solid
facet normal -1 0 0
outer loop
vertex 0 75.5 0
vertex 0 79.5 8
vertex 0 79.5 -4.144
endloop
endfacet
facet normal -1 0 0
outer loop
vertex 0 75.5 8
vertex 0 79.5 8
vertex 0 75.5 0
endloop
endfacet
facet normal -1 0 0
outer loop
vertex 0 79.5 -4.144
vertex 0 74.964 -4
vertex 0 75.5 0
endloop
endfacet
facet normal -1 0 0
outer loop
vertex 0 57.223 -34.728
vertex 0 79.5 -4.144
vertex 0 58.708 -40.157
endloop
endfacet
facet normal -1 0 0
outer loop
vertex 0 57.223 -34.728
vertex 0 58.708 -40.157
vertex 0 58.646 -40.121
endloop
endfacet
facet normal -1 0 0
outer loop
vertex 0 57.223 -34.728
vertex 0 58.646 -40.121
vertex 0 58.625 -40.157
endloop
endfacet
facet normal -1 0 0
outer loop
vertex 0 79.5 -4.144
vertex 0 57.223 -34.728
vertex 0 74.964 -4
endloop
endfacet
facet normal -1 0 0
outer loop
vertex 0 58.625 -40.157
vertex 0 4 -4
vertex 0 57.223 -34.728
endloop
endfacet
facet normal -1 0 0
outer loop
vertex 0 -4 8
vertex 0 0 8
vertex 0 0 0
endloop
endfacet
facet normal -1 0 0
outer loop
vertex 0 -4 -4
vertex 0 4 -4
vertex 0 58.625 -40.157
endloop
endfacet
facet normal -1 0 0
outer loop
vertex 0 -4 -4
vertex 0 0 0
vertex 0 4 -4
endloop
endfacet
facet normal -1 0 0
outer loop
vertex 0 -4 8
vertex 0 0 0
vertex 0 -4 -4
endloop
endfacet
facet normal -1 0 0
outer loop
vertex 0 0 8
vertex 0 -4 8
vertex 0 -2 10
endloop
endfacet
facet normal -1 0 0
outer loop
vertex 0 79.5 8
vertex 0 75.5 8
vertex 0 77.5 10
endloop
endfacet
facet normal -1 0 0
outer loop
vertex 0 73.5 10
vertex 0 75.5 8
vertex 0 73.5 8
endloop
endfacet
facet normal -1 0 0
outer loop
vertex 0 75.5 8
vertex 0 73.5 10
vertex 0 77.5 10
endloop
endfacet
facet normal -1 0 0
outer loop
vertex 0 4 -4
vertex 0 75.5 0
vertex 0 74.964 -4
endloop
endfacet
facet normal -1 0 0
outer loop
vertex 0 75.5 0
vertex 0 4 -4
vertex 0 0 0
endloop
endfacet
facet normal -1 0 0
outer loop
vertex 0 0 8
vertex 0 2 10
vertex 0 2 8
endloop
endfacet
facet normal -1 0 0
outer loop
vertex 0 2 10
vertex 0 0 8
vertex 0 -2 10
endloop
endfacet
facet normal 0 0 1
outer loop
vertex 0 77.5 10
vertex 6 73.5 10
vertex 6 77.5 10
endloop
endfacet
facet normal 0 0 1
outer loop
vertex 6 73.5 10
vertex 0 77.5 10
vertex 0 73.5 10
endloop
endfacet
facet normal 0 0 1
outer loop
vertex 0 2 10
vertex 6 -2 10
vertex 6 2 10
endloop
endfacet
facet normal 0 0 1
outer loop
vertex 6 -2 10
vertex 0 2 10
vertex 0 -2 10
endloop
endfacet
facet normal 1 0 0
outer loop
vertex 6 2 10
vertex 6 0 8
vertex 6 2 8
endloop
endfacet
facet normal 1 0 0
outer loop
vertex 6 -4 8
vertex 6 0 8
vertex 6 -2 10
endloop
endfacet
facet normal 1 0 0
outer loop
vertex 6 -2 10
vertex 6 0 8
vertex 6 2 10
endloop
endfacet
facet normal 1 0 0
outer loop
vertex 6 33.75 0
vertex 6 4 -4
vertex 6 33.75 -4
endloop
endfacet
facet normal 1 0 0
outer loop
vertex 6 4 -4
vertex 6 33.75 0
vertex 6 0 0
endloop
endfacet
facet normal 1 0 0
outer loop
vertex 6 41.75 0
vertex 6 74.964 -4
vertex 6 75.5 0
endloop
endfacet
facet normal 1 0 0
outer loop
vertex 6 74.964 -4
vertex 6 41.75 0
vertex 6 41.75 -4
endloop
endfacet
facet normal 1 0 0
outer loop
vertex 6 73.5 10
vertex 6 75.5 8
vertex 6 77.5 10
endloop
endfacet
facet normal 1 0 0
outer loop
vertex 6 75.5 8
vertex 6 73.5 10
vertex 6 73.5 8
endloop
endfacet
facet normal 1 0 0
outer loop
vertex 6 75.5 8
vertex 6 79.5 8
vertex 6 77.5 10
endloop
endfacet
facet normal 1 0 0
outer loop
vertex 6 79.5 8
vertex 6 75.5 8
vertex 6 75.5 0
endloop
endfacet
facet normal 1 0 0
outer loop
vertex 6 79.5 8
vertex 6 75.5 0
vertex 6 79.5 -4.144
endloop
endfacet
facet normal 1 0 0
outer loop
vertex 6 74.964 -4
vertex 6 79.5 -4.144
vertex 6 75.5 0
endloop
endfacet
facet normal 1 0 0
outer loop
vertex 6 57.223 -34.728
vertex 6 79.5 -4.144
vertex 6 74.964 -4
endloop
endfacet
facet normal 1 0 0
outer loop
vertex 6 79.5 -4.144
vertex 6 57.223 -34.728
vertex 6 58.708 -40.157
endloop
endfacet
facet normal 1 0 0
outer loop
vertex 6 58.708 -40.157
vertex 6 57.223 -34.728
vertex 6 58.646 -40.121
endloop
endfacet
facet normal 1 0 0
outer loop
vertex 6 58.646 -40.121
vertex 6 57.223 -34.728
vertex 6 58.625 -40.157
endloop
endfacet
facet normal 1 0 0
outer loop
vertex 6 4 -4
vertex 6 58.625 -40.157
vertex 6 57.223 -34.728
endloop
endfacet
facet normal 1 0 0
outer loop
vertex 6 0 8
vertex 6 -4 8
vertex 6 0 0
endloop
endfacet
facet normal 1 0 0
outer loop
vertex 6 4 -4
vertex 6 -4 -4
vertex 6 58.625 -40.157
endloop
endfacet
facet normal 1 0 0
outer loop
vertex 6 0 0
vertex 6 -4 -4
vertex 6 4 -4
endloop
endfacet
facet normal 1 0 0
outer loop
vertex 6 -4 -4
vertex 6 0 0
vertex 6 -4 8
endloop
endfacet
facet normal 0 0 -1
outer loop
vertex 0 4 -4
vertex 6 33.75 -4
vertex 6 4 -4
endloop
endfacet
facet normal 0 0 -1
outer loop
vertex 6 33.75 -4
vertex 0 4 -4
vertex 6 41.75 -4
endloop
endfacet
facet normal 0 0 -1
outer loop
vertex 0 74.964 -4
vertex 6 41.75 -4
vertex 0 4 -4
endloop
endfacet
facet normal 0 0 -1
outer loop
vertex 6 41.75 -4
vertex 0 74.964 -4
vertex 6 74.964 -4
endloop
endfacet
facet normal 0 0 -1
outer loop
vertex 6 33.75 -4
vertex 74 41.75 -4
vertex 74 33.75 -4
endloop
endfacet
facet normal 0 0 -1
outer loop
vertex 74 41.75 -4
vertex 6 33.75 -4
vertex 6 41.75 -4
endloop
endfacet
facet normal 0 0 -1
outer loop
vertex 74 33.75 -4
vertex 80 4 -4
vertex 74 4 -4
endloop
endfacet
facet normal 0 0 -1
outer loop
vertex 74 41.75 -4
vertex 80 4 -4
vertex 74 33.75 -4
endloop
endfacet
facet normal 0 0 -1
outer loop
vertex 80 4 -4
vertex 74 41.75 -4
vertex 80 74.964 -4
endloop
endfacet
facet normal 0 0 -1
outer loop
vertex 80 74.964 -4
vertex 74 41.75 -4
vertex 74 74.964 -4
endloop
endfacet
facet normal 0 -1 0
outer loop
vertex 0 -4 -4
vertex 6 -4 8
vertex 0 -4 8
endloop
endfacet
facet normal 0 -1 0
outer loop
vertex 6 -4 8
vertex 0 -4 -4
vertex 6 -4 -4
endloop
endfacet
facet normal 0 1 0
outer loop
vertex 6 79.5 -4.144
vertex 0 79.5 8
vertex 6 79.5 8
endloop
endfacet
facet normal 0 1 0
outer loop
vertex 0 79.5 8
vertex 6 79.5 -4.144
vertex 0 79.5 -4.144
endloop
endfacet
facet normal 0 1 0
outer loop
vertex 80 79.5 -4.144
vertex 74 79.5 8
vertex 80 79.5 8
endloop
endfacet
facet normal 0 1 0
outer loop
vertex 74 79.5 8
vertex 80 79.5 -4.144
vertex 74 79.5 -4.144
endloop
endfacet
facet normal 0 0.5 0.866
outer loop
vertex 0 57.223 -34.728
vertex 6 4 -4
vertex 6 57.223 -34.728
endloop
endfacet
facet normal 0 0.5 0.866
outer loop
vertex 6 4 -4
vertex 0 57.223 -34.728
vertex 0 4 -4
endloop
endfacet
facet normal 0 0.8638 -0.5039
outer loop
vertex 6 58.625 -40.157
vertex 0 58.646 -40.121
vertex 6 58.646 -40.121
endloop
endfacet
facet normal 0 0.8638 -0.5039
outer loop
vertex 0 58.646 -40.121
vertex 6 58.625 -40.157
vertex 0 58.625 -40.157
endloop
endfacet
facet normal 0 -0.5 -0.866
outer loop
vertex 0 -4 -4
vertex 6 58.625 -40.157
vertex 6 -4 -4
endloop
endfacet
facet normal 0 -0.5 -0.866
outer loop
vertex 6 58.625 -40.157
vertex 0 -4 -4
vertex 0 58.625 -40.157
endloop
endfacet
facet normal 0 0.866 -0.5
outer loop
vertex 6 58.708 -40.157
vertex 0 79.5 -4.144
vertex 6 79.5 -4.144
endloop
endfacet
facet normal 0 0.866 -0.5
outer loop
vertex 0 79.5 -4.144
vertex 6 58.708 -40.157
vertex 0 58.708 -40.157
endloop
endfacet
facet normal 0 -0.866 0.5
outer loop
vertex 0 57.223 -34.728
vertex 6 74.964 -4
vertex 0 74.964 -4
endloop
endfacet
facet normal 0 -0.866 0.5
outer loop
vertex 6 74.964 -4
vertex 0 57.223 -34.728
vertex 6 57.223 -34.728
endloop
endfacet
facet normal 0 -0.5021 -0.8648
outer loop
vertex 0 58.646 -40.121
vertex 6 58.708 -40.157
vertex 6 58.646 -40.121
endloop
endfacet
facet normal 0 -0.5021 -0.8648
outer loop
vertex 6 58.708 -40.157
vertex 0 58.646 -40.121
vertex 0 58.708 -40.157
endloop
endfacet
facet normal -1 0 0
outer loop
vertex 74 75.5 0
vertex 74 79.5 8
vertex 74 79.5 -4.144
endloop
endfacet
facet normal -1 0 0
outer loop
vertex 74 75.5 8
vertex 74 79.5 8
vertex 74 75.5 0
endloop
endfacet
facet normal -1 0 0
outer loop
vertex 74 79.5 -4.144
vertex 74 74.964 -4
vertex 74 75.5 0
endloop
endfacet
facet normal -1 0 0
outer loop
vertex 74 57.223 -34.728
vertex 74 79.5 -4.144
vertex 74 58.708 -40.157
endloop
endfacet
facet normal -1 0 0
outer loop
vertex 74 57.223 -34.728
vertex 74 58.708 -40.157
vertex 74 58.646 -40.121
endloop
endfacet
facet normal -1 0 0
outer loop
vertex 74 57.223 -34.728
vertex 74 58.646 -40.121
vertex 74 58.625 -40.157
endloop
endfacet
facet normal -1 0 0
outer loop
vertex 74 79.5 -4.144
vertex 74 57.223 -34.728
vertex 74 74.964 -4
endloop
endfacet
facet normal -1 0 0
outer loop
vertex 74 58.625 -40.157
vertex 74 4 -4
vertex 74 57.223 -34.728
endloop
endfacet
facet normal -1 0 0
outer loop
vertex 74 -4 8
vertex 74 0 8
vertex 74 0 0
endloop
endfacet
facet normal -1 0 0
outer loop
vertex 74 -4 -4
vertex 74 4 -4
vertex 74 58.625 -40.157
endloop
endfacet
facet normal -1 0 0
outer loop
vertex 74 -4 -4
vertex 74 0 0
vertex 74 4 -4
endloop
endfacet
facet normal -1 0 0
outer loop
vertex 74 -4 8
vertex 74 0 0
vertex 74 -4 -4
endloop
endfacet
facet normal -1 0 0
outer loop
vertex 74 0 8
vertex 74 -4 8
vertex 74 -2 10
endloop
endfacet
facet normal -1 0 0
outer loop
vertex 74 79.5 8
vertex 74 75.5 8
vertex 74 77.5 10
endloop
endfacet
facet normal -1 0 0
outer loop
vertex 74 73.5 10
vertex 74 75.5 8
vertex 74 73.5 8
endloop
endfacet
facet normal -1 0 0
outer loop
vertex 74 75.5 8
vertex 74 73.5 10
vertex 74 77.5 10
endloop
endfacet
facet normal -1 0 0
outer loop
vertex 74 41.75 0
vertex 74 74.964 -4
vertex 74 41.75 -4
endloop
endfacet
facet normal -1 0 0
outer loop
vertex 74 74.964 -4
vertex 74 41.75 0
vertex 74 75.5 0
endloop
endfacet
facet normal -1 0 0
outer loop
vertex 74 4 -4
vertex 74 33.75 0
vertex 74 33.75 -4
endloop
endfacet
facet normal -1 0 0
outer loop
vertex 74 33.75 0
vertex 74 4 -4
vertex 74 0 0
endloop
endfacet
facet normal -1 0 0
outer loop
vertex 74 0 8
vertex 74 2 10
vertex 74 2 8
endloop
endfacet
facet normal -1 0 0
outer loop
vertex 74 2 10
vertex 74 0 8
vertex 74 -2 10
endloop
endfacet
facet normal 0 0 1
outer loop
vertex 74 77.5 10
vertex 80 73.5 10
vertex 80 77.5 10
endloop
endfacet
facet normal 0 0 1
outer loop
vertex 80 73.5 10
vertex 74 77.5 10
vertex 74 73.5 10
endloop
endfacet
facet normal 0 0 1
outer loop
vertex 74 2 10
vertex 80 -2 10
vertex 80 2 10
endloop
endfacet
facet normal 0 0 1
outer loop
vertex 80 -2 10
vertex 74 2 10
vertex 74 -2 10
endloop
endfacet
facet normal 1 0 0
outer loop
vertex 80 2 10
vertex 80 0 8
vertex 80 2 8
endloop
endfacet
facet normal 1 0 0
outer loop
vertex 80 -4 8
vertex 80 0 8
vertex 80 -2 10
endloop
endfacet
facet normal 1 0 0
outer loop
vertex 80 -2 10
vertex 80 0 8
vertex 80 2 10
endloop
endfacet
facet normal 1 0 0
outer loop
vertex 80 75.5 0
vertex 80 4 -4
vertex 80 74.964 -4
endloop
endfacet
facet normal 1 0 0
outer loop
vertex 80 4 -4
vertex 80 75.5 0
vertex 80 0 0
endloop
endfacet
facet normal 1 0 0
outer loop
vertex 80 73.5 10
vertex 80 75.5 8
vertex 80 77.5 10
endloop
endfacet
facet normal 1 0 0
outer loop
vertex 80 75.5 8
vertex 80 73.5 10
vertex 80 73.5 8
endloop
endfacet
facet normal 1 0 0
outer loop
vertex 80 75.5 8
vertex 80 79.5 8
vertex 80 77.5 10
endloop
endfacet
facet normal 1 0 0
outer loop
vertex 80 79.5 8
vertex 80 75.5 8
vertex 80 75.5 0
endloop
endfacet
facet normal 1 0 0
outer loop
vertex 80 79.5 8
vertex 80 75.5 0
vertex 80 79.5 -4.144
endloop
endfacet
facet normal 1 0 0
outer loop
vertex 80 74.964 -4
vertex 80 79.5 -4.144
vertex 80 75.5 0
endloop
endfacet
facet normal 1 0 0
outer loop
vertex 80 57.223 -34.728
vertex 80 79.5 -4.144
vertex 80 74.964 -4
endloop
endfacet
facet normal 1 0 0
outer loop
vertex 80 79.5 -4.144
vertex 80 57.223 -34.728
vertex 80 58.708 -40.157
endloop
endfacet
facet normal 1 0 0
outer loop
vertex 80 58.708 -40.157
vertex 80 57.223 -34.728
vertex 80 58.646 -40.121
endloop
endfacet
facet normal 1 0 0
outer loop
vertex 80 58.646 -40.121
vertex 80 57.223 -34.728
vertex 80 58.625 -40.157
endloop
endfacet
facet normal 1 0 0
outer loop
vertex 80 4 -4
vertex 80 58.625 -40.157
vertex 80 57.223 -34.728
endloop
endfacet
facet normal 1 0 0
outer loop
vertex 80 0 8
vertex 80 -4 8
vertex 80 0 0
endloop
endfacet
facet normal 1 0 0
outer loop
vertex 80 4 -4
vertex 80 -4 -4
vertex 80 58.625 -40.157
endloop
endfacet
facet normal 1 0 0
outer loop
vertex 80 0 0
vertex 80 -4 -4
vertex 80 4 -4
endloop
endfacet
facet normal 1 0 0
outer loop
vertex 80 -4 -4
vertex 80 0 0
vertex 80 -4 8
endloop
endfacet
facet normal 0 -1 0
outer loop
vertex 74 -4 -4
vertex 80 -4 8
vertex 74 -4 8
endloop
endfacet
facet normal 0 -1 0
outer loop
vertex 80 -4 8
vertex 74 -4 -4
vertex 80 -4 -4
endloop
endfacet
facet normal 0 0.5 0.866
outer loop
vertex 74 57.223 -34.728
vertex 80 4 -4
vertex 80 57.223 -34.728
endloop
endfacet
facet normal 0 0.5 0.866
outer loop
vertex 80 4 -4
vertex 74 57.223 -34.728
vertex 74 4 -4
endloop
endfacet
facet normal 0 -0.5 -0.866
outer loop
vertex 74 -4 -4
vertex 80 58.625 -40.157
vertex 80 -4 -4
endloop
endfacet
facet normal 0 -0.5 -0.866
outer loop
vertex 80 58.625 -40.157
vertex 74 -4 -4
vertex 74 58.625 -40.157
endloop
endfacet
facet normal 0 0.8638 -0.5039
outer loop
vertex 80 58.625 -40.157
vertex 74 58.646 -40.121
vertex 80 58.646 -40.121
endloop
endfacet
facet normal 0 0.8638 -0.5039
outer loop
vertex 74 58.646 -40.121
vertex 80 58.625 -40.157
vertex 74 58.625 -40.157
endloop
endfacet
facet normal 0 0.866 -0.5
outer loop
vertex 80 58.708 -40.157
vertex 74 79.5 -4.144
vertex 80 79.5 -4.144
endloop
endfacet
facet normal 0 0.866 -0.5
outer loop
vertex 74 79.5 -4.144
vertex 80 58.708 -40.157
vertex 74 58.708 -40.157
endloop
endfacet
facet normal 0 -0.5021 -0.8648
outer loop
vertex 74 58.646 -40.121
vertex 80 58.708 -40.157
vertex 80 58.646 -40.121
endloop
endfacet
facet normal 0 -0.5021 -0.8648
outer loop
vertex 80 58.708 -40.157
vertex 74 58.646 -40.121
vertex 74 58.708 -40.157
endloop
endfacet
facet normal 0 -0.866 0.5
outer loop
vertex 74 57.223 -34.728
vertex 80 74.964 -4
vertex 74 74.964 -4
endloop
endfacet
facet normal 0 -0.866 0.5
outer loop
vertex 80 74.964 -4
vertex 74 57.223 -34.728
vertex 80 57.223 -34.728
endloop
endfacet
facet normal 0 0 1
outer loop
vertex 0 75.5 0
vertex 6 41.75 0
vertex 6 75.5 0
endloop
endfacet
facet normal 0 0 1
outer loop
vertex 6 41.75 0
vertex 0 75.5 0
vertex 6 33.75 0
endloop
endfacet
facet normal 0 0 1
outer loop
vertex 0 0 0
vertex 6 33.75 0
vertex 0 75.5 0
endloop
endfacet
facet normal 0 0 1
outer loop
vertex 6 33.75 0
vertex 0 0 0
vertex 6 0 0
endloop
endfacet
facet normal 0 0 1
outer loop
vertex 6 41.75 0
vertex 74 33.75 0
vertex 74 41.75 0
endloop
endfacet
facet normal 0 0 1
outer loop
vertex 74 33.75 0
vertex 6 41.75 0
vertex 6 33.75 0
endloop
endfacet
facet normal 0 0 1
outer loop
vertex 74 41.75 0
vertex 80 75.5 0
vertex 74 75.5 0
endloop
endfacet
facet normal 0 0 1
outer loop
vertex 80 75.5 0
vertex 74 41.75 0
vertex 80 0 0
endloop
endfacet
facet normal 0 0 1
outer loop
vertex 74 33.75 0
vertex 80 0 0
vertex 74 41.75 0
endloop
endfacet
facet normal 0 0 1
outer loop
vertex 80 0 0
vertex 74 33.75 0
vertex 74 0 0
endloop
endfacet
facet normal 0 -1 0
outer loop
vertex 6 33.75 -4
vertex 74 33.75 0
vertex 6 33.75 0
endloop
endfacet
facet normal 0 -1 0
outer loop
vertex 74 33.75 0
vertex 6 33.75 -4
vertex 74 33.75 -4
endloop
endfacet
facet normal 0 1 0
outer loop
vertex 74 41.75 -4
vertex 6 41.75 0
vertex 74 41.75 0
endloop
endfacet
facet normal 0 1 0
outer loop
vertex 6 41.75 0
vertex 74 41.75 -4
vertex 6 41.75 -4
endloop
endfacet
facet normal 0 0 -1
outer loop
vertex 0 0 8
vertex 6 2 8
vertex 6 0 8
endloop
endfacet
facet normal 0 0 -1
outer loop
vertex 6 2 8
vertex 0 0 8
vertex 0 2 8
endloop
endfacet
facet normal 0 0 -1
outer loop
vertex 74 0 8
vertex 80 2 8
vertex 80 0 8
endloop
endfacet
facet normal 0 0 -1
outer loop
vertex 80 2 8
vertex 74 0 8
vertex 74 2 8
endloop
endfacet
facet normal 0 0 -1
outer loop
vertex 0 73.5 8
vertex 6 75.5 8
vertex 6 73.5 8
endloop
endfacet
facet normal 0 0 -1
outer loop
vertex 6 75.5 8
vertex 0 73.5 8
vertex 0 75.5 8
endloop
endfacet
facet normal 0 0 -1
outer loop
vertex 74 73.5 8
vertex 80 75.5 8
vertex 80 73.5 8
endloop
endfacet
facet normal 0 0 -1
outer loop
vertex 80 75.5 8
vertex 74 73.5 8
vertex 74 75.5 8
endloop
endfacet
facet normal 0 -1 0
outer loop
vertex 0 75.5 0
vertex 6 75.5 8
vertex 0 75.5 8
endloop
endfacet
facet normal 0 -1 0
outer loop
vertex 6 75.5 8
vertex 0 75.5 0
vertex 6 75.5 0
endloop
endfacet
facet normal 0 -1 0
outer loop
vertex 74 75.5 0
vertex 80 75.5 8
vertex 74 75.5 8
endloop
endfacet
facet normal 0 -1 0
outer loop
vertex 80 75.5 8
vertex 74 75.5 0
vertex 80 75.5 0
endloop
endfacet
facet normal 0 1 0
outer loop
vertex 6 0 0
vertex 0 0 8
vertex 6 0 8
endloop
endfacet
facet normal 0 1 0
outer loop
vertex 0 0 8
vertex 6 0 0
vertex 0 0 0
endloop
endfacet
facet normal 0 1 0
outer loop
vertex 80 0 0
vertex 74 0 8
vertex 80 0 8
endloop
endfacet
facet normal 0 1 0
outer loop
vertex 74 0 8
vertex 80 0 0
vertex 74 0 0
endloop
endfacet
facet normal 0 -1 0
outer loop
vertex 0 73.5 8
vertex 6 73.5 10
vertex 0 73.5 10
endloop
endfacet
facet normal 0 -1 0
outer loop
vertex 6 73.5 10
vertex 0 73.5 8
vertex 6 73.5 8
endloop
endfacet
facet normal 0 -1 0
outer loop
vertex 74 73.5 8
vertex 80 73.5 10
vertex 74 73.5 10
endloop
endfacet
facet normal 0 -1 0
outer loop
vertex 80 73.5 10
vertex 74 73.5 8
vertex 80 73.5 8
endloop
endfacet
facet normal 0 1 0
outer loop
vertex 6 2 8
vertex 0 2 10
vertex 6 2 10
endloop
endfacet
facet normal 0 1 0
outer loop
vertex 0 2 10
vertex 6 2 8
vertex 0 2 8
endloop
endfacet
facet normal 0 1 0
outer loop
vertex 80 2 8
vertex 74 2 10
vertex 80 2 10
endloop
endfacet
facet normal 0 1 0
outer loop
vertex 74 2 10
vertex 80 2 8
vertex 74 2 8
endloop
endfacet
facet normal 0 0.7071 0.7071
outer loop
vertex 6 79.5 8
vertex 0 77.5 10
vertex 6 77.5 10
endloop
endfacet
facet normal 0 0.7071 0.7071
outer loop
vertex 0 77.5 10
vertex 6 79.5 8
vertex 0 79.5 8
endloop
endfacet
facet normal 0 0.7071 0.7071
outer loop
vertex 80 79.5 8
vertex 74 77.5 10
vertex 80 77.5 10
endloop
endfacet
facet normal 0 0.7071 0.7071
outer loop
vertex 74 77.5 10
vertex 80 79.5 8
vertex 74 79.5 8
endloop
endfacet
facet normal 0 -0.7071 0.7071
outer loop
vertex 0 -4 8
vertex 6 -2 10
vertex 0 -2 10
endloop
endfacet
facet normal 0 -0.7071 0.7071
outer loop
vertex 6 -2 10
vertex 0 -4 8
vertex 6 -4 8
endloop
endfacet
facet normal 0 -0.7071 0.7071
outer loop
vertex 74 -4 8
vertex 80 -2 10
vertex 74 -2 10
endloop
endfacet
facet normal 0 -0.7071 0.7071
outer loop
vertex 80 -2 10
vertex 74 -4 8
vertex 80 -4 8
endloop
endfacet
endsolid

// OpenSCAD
width=75+0.5;
length=80+20;
depth=8;
size=4;
size2=6;

phonedock();

module phone()
{
	cube([length,width,depth]);
	translate([0,size/2,depth])
		cube([length,width-size,depth]);
}

module phonedock()
{
	difference()
	{
		union()
		{
			translate([0,width/2-size,-size])
				cube([width,2*size,size]);

			for (i = [0,1])
			{
				translate([(length-20-size2)*i,-size,-size])
				{
					cube([size2,width+2*size,depth+1.5*size]);

					rotate(-30,[1,0,0])
						cube([size2,(width+2*size)*sin(60),size]);

					translate([0,width+size/sin(60),size*cos(60)])
						rotate(-30-90,[1,0,0])
							cube([size2,(width+2*size)*tan(30)*sin(60),size]);
				}
			}
		}
		translate([-10,0,0])
			#phone();

		translate([-10,width+size,-width])
			#cube([length,width,2*width]);

		translate([-10,width+size,depth+size/2])
			rotate(45,[1,0,0])
				translate([0,-sin(45)*size/2,-width])
					#cube([length,width,2*width]);

		mirror([0,1,0])
		translate([-10,size,depth+size/2])
			rotate(45,[1,0,0])
				translate([0,-sin(45)*size/2,-width])
					#cube([length,width,2*width]);
	}
}
